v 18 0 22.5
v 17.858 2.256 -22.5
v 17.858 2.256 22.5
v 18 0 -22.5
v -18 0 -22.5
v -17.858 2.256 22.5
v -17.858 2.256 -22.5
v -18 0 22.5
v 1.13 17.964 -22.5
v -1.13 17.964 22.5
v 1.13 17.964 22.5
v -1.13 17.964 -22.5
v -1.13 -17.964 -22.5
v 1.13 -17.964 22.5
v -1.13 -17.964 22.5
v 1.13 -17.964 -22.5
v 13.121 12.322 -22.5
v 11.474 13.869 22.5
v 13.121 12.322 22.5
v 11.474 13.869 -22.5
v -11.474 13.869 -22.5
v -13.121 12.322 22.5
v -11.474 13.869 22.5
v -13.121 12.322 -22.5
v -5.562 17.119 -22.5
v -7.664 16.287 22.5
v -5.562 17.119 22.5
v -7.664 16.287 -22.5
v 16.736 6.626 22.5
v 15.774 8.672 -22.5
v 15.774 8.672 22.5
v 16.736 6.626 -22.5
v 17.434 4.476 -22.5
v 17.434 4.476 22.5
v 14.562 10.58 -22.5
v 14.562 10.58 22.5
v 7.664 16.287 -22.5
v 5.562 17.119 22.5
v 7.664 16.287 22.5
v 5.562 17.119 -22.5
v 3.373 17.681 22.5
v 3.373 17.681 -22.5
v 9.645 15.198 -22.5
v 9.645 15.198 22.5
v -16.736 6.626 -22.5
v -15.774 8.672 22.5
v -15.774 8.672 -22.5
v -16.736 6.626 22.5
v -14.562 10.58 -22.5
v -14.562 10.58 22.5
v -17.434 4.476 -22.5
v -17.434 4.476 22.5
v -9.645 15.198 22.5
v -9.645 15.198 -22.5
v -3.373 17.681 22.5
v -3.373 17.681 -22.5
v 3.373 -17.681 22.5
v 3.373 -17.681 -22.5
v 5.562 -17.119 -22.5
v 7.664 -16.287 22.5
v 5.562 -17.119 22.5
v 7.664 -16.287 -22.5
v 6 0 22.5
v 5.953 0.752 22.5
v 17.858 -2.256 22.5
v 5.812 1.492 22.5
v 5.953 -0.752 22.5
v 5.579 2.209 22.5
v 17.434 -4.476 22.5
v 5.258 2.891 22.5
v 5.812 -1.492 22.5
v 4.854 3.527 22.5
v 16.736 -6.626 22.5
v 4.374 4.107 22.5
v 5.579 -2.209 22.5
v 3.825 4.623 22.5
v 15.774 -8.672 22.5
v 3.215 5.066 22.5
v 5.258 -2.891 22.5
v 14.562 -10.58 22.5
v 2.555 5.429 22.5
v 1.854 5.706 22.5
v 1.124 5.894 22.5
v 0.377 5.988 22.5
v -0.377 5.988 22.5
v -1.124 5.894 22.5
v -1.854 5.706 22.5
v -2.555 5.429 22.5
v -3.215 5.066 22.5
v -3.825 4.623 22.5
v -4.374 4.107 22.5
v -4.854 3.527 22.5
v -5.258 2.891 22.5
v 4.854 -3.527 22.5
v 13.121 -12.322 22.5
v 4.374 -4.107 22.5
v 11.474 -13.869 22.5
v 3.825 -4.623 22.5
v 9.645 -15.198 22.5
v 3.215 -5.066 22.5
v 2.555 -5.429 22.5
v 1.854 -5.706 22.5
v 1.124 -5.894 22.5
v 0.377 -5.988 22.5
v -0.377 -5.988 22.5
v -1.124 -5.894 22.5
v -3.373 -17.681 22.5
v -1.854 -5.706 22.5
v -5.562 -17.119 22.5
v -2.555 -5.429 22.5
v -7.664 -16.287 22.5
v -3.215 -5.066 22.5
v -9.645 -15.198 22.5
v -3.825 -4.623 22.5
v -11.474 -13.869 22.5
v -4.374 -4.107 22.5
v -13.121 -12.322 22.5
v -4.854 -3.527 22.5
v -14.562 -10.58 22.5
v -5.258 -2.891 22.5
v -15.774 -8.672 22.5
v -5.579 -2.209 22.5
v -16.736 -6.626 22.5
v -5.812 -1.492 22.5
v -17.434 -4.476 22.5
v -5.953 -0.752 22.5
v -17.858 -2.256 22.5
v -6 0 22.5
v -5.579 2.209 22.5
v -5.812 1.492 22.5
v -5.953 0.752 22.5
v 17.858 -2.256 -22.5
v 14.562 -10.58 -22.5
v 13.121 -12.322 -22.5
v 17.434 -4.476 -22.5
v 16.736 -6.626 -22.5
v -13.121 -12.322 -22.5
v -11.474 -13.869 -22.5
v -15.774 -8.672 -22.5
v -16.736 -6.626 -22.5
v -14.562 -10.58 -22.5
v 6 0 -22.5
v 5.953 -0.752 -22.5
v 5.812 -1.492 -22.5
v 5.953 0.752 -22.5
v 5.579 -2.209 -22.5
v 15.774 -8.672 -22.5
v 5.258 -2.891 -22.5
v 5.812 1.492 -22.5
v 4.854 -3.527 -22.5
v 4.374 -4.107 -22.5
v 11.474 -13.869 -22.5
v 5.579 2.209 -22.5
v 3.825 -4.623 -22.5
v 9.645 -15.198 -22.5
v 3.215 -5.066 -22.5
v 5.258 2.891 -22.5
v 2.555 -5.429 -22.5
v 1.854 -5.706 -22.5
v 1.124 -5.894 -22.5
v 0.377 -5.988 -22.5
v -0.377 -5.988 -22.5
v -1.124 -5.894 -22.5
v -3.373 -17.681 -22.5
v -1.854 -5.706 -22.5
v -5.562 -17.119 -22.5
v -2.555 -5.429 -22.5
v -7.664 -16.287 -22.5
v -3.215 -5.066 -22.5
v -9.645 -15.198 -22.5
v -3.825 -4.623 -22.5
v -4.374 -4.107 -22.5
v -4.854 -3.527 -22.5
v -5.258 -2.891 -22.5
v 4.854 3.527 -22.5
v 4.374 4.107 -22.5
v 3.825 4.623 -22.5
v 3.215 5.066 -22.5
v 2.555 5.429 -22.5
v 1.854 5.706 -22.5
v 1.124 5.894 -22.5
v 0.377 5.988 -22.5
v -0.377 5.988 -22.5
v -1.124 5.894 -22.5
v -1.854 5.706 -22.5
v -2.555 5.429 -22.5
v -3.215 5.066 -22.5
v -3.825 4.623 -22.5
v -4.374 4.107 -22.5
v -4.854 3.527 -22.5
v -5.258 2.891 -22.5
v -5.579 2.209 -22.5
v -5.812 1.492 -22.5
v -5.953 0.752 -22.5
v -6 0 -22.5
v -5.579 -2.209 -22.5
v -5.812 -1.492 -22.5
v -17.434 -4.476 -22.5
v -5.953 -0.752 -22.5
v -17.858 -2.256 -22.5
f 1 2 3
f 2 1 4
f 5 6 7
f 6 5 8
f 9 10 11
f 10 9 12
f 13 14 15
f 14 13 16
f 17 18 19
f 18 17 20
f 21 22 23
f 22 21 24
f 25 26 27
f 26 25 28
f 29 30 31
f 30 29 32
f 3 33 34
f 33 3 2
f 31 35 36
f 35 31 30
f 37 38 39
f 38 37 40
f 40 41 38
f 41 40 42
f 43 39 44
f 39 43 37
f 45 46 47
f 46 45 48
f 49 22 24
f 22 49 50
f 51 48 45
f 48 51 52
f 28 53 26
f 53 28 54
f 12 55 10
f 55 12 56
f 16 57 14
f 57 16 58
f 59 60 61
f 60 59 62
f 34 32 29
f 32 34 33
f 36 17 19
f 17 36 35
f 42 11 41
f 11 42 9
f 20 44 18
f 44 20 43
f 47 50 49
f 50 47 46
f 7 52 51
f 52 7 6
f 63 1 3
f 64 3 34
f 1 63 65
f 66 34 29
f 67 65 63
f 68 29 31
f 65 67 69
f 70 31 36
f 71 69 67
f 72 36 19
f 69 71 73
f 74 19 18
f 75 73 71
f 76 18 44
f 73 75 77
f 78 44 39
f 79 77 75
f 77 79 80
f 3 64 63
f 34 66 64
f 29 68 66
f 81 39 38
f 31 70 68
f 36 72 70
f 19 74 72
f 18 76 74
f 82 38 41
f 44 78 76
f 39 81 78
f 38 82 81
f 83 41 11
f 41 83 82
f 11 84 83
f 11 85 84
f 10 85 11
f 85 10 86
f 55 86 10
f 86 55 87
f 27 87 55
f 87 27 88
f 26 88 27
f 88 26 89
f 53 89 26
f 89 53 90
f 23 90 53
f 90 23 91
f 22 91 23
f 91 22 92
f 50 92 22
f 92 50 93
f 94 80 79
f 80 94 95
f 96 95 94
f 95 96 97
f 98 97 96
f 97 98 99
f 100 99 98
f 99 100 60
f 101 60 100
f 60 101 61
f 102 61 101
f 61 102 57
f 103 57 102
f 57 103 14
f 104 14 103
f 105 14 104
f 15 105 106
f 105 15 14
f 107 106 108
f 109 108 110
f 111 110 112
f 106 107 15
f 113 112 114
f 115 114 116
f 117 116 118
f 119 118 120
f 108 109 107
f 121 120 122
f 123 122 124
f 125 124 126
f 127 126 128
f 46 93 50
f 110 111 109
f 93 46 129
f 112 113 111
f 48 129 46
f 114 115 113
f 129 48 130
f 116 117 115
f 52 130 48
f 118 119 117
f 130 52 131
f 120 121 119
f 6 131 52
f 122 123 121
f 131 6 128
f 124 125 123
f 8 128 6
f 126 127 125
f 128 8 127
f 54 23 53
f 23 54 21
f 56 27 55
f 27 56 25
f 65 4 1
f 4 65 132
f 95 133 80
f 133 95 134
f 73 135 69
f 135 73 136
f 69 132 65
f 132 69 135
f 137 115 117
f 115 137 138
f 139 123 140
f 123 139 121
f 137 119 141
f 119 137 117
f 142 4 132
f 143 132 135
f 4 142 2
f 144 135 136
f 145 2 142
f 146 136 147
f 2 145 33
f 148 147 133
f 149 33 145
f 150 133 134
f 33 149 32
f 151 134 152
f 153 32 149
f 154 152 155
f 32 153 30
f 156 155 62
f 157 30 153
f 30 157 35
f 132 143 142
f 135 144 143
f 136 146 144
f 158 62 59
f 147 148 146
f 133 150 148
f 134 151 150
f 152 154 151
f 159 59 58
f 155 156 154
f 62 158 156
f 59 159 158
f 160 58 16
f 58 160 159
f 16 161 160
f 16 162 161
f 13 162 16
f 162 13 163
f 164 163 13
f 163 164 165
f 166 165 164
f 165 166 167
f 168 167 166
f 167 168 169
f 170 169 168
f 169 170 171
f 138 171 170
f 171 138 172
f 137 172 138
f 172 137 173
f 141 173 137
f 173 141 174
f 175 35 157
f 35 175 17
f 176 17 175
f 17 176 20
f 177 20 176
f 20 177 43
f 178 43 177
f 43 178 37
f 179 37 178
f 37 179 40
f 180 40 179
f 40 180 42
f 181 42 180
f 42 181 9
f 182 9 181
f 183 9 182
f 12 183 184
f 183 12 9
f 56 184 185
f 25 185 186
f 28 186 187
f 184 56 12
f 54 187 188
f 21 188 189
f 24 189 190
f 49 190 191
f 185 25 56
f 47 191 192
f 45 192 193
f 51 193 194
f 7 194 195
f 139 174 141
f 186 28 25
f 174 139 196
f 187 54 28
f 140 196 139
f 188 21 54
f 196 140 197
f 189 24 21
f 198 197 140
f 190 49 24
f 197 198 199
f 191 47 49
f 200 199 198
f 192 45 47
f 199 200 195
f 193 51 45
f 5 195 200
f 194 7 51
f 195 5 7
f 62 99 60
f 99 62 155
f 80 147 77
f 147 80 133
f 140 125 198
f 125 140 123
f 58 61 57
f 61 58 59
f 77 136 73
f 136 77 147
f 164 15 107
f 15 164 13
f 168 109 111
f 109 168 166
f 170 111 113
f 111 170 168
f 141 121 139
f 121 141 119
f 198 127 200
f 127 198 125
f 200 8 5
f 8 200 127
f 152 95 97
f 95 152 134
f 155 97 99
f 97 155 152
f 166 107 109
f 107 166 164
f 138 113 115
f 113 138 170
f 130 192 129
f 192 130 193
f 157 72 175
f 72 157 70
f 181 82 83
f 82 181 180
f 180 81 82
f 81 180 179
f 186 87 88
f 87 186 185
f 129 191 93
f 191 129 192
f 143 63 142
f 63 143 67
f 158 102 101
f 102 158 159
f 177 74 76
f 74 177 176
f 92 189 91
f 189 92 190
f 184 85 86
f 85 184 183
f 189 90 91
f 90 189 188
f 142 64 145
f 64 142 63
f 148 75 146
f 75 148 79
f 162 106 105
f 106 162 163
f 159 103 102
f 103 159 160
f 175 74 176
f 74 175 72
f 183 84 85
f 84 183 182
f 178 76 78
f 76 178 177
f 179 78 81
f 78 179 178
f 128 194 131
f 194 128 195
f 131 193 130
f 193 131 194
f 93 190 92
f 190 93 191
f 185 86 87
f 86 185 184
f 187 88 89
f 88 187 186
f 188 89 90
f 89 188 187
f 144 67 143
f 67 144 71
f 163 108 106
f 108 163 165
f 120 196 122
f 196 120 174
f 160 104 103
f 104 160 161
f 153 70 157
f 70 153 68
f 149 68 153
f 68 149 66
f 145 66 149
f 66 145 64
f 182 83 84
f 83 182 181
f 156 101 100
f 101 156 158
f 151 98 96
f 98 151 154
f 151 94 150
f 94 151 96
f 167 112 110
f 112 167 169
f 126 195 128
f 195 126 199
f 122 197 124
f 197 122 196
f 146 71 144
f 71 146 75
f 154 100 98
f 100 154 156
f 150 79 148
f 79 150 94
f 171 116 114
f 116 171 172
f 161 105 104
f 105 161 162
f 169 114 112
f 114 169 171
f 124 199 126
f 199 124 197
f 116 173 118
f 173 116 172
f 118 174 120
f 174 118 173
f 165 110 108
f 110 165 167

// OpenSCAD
$fn = 50;


difference() {
	union() {
		translate(v = [0, 0, -22.5000000000]) {
			cylinder(h = 45, r = 18.0000000000);
		}
	}
	union() {
		translate(v = [0, 0, -100.0000000000]) {
			cylinder(h = 200, r = 6);
		}
	}
}
